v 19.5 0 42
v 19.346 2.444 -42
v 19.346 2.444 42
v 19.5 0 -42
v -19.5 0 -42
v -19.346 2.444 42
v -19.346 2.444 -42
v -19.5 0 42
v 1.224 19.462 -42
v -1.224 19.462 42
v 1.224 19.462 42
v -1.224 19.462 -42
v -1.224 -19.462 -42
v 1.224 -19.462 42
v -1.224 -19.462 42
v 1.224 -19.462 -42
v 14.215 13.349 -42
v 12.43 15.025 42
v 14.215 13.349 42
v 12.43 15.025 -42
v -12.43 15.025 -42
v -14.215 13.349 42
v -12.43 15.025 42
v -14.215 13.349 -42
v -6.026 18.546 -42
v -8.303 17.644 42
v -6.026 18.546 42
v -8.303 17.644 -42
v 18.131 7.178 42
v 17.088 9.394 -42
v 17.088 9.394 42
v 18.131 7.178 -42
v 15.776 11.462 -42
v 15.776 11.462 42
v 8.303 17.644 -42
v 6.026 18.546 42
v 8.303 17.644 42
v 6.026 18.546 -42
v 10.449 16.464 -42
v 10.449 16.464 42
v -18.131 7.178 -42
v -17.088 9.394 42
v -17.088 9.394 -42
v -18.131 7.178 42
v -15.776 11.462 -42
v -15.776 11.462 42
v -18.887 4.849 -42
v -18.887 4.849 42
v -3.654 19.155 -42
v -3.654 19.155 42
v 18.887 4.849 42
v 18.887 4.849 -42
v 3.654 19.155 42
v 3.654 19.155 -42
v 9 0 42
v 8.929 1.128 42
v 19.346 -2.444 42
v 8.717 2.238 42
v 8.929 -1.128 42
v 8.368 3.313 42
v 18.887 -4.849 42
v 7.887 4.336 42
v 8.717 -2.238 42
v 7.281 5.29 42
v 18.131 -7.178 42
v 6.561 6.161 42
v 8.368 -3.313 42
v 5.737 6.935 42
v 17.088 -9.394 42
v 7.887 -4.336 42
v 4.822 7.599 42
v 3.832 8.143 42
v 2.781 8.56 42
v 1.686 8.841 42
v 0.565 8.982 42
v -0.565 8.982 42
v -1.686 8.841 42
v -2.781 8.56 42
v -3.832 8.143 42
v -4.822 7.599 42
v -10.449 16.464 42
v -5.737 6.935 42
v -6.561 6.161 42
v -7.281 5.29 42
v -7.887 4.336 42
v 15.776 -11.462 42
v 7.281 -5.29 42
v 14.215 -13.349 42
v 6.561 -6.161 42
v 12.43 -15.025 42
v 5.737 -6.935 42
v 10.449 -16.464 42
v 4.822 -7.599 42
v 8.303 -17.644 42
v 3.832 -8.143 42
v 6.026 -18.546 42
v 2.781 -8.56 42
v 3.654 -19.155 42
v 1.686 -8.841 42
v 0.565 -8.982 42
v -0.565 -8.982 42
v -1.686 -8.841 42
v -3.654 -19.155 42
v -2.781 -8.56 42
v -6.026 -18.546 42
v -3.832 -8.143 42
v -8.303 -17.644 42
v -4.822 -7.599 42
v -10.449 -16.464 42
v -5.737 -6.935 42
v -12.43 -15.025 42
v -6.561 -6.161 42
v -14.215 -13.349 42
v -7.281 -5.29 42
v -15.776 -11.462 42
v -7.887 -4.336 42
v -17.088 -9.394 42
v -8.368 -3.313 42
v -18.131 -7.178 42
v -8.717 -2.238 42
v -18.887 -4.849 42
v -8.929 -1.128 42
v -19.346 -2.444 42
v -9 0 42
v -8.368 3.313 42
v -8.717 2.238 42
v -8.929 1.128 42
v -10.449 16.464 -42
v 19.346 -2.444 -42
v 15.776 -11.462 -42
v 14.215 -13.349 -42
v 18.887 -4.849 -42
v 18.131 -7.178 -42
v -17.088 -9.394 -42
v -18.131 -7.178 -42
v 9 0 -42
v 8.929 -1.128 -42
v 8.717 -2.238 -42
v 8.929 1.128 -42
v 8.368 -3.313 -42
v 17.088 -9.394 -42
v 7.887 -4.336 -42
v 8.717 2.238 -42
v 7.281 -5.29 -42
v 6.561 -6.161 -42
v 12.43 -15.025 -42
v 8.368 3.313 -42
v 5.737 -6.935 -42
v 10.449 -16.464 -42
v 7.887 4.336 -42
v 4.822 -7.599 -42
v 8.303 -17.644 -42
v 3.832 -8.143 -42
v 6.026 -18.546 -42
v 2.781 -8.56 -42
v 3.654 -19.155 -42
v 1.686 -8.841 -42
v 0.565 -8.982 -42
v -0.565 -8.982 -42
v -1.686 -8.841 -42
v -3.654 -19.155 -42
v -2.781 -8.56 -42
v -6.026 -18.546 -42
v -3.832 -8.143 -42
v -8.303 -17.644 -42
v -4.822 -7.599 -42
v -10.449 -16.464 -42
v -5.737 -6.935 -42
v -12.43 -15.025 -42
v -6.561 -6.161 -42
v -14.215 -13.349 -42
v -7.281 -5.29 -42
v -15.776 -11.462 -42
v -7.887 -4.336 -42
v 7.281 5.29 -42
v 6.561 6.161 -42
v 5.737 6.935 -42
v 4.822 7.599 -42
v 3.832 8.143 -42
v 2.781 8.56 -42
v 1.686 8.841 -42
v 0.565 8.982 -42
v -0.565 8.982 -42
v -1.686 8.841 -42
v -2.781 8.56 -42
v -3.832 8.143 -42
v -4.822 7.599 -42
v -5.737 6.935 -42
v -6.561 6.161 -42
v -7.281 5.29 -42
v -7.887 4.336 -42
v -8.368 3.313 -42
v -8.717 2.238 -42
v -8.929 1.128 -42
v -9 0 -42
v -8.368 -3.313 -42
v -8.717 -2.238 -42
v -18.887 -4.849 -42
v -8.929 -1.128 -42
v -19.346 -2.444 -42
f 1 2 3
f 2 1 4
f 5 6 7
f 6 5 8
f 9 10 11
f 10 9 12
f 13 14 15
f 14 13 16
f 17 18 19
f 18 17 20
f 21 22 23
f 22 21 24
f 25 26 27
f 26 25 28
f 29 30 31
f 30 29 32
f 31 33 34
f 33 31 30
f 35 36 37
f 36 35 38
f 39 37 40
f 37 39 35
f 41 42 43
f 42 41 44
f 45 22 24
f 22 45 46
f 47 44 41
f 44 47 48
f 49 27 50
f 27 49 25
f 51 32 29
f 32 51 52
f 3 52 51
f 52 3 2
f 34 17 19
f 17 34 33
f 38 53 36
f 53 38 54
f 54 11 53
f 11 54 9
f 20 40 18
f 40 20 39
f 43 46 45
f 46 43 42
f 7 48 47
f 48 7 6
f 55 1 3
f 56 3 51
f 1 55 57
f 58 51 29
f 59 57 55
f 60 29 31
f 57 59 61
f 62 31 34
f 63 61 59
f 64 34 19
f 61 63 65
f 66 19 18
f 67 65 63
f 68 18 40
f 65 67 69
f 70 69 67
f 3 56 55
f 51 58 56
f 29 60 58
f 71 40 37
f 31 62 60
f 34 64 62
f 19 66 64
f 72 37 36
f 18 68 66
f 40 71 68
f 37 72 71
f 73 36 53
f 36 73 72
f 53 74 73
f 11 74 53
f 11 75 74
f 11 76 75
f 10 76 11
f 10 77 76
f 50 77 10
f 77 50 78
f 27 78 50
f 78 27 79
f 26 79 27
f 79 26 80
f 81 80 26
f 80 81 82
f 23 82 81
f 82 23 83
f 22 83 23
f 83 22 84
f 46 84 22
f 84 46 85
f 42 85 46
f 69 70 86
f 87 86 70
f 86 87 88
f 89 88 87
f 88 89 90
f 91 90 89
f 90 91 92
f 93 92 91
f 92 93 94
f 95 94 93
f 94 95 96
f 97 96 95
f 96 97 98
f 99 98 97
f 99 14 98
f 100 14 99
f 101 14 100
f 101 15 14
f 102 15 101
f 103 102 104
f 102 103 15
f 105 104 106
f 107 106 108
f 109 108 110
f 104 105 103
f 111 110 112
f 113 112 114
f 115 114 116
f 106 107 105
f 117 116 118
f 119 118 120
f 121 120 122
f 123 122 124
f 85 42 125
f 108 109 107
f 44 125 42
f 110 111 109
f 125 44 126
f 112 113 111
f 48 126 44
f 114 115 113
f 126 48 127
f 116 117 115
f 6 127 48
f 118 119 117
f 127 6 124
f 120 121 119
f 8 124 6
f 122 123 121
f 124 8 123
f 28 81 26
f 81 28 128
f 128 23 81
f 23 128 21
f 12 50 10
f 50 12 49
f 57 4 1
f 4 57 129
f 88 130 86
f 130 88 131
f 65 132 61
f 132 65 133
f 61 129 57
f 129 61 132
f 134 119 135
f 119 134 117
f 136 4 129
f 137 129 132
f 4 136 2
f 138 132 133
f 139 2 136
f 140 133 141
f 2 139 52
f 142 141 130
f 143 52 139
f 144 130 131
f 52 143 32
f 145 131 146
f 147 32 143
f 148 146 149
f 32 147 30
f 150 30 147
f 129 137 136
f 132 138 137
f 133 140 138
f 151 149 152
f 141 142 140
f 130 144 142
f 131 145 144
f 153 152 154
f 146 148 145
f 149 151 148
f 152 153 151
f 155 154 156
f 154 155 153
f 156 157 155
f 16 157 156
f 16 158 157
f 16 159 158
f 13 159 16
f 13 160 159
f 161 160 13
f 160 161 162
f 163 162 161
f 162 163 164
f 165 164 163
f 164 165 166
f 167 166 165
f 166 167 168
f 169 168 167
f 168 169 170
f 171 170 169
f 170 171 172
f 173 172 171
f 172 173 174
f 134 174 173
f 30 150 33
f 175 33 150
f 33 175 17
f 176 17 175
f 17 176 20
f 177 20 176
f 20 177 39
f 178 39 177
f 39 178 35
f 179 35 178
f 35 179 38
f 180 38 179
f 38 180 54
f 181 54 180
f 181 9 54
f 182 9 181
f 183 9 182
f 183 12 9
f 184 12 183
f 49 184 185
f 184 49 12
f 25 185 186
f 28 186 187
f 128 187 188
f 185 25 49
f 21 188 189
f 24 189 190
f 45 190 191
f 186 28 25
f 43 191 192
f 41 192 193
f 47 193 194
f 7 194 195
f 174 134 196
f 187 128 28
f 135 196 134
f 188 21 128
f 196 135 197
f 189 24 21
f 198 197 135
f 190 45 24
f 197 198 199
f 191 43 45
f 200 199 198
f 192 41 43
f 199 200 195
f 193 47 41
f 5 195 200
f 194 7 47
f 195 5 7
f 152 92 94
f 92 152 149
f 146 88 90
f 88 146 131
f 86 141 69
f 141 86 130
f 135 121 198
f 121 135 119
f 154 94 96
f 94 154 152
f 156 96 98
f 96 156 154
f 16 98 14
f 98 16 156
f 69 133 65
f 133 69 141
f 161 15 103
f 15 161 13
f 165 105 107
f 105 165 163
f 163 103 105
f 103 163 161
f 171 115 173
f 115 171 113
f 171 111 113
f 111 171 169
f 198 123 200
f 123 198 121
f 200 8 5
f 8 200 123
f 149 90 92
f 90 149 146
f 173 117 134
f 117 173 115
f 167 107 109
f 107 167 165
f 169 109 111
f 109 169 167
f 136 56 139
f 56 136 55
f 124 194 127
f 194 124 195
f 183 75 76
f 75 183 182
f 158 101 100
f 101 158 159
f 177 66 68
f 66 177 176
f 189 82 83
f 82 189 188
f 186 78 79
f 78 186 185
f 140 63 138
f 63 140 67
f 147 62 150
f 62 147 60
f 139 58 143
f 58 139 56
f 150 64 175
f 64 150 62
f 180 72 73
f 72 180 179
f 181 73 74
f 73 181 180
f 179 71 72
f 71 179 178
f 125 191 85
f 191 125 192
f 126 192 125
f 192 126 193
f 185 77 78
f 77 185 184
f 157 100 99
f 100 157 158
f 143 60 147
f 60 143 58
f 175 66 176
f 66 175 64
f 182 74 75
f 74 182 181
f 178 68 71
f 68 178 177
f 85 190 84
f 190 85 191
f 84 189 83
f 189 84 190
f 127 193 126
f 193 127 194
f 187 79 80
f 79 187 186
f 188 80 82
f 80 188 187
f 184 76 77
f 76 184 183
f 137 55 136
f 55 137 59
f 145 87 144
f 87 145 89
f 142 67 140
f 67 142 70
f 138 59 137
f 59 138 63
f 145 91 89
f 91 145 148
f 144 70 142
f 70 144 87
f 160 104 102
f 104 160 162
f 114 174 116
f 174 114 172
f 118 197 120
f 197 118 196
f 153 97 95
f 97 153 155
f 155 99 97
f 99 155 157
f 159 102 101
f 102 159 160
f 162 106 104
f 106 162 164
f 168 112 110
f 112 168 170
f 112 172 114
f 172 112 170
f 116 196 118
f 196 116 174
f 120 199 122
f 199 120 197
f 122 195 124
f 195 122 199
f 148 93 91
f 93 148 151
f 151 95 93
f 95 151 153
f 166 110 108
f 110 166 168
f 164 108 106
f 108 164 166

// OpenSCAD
$fn = 50;


difference() {
	union() {
		translate(v = [0, 0, -42.0000000000]) {
			cylinder(h = 84, r = 19.5000000000);
		}
	}
	union() {
		translate(v = [0, 0, -100.0000000000]) {
			cylinder(h = 200, r = 9);
		}
	}
}
